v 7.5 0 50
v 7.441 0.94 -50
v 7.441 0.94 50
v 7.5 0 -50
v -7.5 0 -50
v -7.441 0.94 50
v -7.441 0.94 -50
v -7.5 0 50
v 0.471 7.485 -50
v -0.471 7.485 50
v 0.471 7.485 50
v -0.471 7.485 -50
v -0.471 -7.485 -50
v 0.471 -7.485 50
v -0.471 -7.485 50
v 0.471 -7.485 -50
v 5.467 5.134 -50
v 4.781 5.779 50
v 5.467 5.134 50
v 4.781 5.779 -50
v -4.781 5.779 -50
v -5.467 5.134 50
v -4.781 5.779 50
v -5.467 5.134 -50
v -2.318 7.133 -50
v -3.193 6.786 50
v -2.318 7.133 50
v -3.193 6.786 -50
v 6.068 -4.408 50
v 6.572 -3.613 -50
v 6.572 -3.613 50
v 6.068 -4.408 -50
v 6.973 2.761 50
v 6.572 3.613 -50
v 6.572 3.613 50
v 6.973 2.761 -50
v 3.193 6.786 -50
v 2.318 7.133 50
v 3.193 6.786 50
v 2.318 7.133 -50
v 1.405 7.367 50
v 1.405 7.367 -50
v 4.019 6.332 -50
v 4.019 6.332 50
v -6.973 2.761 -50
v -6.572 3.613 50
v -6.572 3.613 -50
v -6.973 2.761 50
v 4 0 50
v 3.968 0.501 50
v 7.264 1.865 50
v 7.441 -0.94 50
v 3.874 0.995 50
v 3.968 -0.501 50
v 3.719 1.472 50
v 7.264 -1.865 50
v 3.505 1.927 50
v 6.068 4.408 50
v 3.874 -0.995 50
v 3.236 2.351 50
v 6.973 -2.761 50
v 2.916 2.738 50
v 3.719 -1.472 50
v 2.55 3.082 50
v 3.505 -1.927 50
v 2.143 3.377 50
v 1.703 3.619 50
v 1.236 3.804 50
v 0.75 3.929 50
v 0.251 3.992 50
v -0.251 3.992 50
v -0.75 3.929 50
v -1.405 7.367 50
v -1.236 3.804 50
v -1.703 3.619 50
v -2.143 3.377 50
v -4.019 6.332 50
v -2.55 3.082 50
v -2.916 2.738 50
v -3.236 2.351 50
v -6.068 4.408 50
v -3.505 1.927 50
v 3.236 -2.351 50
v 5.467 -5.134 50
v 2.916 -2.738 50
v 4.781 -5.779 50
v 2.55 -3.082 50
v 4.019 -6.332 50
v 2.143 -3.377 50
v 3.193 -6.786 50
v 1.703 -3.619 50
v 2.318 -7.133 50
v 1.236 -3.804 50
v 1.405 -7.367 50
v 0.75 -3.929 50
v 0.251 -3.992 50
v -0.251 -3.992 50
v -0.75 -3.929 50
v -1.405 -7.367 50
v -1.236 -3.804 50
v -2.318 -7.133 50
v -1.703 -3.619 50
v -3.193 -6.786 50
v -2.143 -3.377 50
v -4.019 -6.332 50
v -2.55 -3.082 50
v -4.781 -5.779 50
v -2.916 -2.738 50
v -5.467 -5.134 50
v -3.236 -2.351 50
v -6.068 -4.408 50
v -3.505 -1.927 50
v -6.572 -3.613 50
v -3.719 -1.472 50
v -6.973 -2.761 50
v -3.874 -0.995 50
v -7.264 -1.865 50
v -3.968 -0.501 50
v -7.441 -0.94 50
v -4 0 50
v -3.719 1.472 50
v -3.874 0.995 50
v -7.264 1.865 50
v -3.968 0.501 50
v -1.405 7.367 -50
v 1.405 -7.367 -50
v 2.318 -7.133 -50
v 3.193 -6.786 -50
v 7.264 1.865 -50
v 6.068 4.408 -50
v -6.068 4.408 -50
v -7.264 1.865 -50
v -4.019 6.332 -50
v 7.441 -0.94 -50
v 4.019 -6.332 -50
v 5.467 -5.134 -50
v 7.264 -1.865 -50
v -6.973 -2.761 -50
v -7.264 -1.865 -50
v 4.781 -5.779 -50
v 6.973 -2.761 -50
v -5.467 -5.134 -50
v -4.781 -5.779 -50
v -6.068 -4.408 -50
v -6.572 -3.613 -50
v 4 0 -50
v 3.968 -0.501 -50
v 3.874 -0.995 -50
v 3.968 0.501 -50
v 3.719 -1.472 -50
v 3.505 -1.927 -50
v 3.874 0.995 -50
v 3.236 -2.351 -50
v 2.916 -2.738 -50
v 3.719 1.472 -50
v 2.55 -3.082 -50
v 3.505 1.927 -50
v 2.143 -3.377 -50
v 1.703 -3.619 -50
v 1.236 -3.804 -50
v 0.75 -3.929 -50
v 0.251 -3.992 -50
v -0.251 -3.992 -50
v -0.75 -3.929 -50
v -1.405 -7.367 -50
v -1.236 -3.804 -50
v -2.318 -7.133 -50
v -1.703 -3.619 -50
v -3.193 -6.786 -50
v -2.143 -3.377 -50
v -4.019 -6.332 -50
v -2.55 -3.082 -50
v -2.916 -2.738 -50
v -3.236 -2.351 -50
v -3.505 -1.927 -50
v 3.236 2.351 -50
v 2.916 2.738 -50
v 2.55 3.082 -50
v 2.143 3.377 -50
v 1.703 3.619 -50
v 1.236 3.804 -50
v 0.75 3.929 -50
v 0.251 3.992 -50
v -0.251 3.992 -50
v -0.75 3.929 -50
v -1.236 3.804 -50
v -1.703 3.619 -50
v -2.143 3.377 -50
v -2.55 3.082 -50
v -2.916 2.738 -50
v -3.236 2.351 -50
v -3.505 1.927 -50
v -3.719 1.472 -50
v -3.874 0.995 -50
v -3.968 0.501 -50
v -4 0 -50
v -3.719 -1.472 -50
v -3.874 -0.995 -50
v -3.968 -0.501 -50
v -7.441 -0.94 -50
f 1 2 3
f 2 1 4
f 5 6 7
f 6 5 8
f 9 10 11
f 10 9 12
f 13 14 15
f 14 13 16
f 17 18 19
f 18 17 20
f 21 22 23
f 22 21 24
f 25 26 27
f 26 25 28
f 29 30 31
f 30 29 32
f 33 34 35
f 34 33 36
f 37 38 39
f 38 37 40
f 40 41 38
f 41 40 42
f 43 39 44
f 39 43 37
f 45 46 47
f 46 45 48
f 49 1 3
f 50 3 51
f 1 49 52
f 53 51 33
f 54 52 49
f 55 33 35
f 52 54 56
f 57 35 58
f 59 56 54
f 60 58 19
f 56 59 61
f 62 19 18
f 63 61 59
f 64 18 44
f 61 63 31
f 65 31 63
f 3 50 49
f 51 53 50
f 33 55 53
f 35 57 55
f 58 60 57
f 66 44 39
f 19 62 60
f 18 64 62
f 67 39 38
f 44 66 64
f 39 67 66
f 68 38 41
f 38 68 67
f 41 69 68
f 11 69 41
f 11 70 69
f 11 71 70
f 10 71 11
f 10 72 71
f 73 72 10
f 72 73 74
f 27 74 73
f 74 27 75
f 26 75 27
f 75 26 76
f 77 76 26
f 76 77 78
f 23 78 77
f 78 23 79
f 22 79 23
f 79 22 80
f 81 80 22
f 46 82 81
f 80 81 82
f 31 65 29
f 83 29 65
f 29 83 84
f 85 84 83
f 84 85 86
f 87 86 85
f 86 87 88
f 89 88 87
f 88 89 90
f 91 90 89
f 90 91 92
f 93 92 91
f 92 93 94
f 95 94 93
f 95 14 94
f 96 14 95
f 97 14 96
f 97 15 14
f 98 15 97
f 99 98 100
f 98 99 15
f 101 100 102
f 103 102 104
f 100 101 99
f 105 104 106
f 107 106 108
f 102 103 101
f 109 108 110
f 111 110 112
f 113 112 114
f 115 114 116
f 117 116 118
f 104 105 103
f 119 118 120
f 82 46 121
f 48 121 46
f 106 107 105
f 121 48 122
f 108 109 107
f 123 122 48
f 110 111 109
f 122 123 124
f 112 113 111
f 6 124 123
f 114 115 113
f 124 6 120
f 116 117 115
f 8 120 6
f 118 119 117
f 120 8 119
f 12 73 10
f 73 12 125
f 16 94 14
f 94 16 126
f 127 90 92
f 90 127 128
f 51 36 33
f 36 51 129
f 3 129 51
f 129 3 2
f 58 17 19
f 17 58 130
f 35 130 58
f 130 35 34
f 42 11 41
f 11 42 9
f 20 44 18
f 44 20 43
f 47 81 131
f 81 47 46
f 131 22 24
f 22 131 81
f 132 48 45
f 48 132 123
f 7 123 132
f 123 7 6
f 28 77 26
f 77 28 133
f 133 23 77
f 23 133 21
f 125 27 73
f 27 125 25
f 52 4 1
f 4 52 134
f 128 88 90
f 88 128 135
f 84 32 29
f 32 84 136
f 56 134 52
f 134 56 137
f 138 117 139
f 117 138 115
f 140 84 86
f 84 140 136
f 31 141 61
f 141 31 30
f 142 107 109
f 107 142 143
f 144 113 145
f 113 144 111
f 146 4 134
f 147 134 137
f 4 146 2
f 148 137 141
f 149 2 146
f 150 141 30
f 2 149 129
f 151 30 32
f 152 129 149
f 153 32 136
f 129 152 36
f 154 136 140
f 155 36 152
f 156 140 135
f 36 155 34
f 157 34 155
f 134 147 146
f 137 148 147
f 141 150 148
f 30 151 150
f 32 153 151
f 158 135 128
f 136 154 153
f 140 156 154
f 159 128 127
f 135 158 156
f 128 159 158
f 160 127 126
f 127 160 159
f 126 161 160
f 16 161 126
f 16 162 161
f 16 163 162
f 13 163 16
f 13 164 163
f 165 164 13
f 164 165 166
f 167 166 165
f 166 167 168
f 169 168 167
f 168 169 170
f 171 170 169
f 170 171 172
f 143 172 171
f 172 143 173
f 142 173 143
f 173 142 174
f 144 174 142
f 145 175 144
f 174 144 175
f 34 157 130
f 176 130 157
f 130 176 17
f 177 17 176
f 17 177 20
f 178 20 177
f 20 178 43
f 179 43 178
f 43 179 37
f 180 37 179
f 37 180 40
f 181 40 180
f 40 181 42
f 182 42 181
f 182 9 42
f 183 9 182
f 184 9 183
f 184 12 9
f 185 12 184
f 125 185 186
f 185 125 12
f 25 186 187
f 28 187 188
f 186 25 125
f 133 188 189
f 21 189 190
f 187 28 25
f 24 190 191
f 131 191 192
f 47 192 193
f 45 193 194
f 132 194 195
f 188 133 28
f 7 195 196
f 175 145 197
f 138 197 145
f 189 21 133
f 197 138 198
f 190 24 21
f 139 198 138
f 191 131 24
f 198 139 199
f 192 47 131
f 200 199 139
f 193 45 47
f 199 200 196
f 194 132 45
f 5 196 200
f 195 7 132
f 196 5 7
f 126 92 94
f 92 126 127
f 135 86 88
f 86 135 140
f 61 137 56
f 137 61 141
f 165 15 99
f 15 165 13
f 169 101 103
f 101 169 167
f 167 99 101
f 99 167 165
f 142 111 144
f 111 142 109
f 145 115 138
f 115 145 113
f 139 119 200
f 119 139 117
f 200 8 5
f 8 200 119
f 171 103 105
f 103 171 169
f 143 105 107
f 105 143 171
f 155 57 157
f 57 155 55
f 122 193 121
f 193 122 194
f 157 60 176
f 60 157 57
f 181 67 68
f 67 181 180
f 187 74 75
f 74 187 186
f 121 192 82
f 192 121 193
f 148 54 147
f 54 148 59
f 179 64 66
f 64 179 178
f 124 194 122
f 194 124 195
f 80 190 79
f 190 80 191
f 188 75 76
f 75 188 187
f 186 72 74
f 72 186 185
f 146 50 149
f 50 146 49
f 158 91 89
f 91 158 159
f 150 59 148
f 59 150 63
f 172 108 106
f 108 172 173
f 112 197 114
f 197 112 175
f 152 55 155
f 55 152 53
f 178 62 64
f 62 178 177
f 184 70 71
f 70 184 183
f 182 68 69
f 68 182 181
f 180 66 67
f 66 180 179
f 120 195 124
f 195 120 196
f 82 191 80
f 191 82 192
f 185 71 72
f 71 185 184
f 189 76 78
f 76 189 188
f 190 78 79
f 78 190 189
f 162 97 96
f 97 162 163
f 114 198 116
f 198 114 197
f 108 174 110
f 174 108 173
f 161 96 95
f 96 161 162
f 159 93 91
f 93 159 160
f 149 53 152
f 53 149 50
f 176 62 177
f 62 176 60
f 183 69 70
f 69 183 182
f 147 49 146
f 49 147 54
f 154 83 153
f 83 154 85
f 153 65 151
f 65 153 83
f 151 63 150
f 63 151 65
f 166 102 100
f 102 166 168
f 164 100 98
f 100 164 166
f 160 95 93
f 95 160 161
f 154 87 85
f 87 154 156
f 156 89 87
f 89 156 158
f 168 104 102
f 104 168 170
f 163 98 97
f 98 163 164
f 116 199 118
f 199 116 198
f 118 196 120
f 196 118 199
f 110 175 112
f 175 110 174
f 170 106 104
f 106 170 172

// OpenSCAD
$fn = 50;


difference() {
	union() {
		translate(v = [0, 0, -50.0000000000]) {
			cylinder(h = 100, r = 7.5000000000);
		}
	}
	union() {
		translate(v = [0, 0, -100.0000000000]) {
			cylinder(h = 200, r = 4.0000000000);
		}
	}
}
